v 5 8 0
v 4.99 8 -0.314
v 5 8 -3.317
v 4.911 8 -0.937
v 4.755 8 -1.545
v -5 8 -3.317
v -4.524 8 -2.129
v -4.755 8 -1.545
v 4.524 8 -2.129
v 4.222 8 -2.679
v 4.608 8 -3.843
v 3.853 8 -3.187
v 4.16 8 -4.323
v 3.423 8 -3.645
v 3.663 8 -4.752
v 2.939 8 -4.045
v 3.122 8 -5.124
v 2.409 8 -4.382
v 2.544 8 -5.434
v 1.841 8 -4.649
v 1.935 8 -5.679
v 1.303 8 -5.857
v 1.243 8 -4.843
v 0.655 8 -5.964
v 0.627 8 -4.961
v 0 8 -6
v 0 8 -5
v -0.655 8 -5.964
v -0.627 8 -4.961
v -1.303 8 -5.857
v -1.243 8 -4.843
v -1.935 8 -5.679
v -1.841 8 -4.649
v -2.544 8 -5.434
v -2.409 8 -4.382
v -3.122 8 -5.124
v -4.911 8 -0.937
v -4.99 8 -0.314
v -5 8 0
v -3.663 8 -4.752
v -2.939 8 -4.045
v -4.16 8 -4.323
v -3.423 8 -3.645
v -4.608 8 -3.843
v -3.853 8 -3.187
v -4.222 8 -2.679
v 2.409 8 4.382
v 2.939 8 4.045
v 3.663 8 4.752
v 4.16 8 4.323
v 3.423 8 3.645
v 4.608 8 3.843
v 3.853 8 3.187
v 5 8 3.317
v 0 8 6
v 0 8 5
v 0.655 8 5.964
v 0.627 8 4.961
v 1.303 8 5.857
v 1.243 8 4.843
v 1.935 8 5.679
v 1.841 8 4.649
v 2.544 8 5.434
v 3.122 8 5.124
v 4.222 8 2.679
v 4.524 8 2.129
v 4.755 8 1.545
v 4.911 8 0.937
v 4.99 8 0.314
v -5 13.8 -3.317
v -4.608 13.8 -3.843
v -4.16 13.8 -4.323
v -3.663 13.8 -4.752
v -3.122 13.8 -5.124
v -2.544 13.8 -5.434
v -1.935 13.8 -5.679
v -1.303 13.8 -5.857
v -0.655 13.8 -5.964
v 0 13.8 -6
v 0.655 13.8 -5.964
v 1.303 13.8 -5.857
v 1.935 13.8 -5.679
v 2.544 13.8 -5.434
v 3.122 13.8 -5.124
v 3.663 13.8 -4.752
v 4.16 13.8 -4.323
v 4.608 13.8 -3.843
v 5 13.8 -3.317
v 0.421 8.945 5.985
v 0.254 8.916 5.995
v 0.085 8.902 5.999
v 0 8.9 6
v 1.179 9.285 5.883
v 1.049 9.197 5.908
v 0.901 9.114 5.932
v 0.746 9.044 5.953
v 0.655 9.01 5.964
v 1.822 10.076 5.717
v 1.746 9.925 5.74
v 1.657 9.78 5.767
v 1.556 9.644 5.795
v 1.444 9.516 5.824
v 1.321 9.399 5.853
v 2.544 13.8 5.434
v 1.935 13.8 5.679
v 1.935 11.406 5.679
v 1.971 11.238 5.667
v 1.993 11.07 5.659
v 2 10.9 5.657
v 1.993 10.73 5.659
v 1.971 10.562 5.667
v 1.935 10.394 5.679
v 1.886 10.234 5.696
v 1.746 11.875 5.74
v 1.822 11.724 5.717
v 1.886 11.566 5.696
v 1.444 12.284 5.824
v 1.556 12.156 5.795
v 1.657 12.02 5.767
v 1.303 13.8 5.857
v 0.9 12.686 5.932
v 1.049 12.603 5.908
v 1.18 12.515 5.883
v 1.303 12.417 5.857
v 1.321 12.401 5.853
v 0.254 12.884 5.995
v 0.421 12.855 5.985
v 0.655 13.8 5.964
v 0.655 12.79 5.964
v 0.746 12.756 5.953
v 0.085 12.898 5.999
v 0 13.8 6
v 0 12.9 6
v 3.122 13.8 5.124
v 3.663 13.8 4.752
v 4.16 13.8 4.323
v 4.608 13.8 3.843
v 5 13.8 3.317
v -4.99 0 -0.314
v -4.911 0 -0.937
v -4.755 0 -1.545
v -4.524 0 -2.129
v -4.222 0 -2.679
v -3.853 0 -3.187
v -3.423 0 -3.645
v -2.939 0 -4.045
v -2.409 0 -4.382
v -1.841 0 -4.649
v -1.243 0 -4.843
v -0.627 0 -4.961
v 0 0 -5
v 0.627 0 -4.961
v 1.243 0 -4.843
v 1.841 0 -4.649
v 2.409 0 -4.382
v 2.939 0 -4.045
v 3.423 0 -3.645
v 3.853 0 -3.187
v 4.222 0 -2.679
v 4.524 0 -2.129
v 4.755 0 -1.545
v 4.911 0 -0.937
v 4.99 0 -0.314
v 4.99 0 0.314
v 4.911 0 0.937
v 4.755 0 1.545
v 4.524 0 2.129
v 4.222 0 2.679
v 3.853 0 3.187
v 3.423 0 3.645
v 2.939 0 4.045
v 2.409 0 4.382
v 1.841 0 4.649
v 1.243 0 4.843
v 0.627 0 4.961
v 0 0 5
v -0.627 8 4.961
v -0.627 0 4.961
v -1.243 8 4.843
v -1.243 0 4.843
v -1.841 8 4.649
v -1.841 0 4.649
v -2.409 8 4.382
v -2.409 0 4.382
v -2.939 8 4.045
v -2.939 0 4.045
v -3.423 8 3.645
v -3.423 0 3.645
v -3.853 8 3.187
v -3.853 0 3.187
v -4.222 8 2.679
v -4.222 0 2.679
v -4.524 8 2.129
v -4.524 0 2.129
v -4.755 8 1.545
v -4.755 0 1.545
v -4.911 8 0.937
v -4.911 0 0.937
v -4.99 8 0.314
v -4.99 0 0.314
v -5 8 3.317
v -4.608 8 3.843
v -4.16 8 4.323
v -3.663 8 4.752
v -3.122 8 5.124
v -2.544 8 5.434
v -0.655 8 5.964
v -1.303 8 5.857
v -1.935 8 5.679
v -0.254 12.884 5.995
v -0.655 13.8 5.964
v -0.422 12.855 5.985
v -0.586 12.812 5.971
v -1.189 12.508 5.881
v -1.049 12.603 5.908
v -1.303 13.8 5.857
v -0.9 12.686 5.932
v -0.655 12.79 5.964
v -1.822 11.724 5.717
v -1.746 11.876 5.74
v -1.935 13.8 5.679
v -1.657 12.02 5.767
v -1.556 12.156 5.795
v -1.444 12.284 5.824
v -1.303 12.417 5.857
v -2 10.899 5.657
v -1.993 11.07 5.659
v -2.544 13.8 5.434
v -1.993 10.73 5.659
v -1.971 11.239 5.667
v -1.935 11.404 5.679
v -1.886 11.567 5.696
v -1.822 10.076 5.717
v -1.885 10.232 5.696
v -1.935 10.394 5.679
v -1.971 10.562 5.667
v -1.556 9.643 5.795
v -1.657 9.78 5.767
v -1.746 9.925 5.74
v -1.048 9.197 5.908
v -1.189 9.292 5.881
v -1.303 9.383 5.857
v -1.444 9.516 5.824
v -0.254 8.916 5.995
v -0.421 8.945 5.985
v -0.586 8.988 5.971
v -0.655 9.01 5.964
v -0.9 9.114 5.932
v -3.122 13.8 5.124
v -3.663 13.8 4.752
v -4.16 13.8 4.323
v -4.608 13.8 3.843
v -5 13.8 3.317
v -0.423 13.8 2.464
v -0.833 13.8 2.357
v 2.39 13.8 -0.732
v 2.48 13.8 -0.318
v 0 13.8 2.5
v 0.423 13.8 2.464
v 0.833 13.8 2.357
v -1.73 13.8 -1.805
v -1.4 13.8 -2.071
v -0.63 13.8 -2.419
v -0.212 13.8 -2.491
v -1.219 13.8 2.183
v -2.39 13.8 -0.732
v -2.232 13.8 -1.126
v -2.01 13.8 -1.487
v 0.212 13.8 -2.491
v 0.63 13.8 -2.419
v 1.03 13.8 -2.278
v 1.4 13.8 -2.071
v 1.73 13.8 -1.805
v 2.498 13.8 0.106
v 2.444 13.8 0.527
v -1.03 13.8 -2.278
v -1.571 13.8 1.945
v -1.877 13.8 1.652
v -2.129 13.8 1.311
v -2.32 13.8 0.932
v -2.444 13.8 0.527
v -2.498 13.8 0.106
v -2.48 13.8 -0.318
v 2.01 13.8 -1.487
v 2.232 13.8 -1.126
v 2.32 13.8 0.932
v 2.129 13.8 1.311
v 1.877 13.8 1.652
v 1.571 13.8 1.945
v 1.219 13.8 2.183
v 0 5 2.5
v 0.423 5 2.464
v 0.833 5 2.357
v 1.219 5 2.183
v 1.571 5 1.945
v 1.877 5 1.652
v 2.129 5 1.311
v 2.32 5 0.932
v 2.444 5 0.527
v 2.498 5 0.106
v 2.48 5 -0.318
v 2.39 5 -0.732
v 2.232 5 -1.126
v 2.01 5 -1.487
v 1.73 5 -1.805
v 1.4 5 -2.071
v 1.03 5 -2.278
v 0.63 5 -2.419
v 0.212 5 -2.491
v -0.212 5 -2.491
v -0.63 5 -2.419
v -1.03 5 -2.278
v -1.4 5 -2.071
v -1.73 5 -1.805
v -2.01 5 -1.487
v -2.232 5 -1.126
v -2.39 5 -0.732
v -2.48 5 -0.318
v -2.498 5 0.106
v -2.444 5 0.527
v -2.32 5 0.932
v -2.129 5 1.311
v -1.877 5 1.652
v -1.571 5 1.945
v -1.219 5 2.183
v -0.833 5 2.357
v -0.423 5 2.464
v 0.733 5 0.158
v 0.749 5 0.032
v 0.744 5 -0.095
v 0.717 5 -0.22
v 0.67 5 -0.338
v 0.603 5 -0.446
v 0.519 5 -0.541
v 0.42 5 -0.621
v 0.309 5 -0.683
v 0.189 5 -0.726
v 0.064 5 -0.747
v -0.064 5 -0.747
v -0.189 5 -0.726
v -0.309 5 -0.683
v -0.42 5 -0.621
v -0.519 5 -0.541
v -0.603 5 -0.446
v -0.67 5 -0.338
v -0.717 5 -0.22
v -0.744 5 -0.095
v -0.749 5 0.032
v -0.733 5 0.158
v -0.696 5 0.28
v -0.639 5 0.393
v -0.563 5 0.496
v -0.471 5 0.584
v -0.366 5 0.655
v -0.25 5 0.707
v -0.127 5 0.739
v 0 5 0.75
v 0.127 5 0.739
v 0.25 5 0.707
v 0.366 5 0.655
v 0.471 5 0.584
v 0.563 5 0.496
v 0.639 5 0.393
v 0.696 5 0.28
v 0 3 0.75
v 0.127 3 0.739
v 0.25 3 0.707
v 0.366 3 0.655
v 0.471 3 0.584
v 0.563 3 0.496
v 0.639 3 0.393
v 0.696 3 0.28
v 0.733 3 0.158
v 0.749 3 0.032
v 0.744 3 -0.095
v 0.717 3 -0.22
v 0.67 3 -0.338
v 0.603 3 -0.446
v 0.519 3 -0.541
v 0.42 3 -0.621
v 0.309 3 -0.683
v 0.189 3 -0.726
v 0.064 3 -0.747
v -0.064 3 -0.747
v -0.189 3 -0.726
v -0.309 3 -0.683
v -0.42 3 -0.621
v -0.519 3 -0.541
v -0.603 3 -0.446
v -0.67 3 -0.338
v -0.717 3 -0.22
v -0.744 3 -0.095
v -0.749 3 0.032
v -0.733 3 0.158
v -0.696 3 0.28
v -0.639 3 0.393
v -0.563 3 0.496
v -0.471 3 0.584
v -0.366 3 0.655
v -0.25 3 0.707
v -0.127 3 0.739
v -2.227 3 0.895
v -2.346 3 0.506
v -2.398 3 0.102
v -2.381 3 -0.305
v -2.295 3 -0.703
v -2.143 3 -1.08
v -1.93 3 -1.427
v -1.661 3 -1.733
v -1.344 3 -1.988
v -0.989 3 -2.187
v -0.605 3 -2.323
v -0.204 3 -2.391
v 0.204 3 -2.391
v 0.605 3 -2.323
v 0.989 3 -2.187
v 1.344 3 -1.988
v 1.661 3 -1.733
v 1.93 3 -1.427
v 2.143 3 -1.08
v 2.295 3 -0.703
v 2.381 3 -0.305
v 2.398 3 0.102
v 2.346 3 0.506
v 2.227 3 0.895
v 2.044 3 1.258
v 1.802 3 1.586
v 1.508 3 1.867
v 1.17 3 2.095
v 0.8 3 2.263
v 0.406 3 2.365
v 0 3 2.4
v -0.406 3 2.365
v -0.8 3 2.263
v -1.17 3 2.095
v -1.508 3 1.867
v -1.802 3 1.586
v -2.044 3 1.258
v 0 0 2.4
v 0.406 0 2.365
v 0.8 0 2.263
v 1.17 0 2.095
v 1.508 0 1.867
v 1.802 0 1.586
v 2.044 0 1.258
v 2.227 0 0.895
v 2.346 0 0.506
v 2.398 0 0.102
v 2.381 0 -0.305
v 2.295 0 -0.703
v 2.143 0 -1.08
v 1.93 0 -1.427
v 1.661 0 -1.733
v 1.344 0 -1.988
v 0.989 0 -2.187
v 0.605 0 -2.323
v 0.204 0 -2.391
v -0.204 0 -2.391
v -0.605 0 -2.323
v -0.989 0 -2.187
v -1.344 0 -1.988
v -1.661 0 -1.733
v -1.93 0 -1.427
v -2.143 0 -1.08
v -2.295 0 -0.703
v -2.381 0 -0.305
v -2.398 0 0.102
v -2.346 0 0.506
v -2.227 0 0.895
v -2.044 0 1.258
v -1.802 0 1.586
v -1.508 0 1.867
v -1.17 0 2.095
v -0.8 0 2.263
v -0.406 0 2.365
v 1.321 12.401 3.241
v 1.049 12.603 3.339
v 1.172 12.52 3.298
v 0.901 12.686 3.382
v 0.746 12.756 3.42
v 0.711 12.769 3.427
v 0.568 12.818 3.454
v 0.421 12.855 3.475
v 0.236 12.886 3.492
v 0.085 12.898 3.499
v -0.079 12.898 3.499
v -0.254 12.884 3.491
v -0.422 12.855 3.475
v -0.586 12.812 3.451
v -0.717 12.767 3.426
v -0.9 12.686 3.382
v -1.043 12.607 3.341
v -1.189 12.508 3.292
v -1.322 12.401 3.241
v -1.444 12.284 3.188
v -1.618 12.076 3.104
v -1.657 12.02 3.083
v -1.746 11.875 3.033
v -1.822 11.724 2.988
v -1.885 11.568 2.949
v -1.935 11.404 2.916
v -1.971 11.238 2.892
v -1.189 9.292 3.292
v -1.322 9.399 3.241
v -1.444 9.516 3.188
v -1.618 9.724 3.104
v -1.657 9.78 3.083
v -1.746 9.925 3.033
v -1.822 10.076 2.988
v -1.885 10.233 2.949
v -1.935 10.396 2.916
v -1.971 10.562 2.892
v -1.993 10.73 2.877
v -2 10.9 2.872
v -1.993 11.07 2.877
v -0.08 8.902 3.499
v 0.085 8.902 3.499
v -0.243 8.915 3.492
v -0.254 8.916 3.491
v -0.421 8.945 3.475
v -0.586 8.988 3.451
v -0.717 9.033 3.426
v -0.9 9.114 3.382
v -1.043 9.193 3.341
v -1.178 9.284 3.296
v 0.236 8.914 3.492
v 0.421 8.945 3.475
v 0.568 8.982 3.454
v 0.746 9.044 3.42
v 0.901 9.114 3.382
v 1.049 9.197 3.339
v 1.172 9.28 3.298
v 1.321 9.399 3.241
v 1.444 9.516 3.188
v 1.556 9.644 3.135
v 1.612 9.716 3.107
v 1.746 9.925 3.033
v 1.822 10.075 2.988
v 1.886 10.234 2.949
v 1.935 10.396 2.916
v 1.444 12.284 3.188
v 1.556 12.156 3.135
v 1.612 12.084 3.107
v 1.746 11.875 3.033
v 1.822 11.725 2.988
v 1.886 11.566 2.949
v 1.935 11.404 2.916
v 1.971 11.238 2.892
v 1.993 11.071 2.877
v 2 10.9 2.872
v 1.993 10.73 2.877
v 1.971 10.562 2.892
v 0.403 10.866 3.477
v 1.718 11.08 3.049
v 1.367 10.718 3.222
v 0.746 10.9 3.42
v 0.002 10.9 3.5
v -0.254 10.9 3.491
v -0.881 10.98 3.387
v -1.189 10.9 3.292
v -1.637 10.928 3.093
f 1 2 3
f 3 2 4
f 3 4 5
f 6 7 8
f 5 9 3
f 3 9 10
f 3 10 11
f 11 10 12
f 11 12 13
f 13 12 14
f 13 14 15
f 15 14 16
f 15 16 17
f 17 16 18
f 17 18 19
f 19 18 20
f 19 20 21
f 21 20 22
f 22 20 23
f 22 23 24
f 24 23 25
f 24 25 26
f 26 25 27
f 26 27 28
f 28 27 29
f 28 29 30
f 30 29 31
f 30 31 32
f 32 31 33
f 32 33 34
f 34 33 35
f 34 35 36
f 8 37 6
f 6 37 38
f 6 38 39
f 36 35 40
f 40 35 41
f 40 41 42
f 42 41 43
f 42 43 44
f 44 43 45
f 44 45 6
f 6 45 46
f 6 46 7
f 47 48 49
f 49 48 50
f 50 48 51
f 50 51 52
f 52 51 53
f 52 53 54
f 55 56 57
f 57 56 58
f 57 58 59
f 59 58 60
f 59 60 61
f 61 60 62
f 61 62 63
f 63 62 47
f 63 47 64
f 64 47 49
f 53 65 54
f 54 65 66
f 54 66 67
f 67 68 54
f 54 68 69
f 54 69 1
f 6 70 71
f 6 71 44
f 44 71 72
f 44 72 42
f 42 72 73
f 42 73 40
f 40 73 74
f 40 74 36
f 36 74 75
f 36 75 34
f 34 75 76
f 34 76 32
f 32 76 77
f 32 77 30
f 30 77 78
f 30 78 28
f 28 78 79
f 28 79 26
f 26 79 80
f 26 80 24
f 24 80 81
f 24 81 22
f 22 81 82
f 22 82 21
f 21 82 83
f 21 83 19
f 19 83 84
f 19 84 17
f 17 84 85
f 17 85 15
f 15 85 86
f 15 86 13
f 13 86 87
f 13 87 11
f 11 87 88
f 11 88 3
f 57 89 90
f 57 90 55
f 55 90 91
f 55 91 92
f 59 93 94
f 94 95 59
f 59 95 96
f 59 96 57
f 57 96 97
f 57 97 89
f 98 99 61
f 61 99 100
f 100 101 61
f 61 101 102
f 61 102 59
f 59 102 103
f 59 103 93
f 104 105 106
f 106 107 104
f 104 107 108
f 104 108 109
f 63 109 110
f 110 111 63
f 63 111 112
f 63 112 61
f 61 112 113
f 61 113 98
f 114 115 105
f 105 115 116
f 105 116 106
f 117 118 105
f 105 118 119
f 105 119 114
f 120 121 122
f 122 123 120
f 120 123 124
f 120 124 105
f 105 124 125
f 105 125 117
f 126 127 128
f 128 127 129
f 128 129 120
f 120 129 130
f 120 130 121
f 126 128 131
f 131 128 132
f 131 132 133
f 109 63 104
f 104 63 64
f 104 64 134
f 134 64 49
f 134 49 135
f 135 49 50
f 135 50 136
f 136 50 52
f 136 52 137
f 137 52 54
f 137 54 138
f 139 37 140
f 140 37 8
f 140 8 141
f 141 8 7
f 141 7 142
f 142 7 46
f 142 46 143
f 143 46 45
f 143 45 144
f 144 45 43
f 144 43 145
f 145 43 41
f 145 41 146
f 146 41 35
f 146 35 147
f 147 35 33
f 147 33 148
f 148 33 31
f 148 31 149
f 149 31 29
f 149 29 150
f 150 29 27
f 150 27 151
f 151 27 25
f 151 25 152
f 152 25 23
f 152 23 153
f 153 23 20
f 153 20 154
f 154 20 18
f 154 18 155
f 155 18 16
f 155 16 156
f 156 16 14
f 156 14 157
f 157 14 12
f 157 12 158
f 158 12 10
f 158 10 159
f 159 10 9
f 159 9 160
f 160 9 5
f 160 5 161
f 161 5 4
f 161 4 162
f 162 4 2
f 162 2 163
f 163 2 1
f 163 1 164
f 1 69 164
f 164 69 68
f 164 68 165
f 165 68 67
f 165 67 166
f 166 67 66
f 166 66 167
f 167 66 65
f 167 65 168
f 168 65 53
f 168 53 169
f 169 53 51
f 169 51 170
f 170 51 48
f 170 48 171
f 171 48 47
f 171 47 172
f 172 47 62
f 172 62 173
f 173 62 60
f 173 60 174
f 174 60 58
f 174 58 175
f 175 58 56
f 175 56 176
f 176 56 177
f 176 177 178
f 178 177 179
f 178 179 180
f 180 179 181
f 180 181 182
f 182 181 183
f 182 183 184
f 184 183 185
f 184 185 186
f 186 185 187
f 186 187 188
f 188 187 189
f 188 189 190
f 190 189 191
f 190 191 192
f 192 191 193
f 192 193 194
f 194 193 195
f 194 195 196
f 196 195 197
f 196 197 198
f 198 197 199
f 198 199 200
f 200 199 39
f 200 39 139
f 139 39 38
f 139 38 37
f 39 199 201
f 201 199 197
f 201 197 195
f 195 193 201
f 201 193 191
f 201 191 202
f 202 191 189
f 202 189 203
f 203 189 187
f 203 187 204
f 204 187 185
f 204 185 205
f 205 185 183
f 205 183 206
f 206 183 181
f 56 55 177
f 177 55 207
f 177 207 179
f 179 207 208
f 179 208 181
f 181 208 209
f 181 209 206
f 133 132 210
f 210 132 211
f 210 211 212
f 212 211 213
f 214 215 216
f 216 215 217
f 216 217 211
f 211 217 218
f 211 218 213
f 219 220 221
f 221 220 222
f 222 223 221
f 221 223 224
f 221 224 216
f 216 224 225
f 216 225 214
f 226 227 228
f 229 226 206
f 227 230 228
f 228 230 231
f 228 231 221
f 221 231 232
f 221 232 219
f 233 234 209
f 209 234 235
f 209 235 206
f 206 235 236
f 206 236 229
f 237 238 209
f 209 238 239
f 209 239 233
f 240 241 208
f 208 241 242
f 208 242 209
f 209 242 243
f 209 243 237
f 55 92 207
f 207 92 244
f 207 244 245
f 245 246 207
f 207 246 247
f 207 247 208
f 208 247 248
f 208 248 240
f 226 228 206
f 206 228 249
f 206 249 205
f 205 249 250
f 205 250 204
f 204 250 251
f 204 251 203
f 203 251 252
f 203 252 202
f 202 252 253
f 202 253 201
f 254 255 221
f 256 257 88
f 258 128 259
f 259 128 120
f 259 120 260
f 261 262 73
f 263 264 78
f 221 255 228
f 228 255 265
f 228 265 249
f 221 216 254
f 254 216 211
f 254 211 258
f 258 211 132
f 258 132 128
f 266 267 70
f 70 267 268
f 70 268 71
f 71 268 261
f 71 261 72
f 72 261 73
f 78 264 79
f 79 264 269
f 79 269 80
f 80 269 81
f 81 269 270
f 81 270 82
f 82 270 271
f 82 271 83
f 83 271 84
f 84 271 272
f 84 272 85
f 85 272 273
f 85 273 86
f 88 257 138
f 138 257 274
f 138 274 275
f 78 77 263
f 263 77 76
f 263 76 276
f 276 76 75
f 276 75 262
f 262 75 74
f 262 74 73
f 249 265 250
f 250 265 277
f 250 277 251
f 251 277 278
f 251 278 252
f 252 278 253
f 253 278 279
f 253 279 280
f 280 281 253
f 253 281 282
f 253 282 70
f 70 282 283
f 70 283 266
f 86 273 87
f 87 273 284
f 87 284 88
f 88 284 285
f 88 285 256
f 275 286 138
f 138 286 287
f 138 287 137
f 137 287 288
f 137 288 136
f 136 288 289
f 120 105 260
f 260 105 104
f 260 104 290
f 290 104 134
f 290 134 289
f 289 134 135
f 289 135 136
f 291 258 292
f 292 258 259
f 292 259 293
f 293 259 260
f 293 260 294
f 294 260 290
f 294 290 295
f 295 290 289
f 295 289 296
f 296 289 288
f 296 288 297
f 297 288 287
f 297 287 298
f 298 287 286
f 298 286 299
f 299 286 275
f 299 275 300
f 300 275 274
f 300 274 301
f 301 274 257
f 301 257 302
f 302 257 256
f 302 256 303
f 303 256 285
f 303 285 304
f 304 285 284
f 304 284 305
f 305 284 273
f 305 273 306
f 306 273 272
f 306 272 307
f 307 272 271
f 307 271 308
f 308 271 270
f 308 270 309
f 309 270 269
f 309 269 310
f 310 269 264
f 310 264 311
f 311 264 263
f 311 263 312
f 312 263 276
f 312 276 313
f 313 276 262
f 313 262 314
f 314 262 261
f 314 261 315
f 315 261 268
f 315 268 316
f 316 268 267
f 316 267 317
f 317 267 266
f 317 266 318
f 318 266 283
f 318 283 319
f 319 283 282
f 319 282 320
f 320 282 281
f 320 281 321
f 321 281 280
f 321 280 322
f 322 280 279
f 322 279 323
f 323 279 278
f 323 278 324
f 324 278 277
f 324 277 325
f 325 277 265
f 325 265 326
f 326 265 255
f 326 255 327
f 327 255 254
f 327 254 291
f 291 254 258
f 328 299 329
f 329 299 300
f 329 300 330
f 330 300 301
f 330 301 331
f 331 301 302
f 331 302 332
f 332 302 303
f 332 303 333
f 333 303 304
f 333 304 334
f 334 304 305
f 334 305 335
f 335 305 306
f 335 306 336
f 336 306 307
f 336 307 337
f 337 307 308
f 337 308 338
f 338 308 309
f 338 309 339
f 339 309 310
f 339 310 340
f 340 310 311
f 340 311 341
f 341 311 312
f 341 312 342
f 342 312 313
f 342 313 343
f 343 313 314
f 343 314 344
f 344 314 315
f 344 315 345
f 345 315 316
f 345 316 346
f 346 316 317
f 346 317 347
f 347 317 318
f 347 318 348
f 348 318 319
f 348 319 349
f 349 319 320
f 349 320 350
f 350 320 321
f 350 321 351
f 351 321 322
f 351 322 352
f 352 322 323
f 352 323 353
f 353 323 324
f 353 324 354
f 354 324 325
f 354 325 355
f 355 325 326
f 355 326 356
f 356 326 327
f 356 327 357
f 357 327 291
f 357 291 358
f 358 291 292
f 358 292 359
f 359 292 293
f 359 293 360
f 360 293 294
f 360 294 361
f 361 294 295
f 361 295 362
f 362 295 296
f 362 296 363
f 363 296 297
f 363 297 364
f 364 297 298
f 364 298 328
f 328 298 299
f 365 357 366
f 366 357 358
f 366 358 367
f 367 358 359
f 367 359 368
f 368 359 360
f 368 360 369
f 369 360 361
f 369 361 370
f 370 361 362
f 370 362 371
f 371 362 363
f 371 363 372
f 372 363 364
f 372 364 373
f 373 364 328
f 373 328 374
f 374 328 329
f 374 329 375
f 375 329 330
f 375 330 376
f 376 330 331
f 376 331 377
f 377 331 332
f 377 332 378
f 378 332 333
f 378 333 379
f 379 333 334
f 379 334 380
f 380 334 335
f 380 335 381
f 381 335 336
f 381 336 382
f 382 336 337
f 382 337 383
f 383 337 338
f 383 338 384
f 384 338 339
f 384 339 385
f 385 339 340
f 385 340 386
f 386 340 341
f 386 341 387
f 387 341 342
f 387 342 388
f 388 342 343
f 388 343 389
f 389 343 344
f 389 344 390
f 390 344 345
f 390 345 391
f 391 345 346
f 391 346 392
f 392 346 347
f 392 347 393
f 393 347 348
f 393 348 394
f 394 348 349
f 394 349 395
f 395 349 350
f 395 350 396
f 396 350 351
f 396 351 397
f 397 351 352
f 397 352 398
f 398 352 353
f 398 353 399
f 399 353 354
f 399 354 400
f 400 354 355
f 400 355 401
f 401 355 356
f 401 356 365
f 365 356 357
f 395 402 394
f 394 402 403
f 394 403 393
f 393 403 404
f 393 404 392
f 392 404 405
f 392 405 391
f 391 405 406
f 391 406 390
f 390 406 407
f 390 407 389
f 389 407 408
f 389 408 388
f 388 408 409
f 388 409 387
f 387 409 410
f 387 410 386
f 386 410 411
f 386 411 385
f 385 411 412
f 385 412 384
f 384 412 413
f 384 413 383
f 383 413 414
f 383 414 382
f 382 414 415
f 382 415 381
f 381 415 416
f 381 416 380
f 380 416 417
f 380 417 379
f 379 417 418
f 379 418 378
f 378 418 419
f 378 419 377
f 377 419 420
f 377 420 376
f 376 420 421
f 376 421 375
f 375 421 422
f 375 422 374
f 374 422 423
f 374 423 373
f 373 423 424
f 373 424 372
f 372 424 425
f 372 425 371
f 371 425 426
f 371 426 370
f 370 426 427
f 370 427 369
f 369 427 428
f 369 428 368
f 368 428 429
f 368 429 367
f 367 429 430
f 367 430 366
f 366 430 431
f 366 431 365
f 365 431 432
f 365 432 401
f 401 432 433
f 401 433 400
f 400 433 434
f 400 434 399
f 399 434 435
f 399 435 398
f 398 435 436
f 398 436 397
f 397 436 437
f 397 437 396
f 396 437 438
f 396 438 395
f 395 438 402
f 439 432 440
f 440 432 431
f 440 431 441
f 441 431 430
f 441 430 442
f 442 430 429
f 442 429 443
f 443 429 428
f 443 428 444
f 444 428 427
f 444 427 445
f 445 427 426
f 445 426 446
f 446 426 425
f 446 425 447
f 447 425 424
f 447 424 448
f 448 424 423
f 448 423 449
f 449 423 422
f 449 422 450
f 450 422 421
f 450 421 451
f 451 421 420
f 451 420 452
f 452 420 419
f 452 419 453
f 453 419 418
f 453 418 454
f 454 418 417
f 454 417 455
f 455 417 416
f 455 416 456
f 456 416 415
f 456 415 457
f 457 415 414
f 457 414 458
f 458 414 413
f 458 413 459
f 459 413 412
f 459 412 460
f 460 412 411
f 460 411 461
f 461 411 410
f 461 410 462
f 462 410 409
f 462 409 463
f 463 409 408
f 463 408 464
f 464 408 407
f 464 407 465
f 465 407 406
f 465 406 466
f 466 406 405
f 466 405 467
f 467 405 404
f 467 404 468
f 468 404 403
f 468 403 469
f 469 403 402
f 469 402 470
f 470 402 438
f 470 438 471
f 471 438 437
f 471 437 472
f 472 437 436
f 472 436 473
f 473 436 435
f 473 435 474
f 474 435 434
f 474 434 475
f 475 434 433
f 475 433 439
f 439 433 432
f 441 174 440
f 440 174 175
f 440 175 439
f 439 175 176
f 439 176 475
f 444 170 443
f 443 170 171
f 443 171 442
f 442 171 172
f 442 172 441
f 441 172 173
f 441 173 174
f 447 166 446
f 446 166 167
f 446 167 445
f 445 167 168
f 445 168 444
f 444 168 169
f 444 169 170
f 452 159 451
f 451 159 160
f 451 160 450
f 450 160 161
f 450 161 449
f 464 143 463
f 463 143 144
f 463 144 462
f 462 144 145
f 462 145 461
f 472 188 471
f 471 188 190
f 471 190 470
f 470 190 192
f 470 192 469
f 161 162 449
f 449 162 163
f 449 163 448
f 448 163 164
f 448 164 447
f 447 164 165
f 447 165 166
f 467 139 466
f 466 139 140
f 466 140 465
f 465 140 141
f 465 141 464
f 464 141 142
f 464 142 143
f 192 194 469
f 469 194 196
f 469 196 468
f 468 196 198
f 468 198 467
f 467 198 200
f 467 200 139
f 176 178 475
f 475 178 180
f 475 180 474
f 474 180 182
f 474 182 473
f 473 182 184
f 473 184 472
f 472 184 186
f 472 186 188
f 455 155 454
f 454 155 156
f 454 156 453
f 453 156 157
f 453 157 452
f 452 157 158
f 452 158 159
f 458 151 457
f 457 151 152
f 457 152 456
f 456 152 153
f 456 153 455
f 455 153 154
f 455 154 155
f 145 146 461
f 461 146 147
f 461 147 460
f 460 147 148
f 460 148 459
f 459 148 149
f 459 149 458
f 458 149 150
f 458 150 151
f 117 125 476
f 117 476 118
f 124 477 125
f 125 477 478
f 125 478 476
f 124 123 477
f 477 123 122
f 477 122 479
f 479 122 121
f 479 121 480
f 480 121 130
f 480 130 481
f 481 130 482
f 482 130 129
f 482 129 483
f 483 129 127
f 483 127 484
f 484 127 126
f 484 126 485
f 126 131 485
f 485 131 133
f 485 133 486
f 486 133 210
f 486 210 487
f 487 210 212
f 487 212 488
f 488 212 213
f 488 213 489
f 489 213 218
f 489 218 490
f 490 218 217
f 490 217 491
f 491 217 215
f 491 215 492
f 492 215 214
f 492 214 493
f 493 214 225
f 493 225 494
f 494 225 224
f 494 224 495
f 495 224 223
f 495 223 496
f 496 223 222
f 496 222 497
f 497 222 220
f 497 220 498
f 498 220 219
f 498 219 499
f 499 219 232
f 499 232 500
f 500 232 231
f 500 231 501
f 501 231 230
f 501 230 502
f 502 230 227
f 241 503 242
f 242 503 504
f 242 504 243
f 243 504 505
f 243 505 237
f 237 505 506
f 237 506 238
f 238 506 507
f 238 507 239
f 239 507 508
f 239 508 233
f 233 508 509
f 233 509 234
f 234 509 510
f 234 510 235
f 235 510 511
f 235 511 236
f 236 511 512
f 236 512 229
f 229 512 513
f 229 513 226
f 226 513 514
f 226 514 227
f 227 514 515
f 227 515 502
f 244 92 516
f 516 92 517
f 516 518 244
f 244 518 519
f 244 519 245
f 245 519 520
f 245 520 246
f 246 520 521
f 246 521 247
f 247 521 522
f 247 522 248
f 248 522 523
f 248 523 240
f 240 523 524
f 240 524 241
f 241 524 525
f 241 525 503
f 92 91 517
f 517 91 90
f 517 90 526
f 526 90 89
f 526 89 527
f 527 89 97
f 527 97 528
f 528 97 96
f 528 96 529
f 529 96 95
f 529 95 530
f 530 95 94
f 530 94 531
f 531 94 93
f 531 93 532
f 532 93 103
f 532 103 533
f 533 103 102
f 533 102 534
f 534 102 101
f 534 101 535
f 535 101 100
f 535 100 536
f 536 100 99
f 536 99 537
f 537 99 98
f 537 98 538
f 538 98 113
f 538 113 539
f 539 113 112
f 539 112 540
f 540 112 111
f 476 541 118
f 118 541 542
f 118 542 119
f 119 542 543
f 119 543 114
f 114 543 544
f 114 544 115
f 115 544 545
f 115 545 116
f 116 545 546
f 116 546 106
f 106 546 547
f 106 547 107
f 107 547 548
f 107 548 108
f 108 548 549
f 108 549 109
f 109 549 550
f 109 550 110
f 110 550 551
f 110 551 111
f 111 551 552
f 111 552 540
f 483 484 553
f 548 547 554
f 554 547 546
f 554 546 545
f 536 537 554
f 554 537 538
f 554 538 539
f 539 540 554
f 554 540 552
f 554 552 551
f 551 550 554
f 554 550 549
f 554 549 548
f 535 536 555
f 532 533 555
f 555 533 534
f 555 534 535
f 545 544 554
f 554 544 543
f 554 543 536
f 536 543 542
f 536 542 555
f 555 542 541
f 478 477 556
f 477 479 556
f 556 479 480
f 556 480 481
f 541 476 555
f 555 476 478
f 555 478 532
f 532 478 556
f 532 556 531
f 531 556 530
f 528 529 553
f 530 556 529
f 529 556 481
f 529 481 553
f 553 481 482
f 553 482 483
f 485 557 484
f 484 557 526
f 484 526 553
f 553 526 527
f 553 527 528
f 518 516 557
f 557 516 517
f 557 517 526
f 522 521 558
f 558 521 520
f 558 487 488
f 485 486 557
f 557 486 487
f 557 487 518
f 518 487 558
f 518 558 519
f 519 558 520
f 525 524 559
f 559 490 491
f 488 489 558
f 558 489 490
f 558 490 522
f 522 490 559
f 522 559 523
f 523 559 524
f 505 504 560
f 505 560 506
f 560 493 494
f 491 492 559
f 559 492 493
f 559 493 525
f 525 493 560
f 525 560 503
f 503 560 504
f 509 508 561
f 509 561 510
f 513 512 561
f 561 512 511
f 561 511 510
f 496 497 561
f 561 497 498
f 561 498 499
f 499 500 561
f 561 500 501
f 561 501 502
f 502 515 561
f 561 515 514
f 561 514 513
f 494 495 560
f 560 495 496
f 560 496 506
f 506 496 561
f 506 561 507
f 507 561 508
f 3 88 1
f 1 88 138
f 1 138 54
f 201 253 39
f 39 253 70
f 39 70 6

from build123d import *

# Parameters (mm, degrees)
CUT_EXTRUDE1_REACH      = 21.247
CUT_EXTRUDE1_END_RADIUS = 3.5
SKETCH5_R               = 2
SKETCH7_W               = 1
SKETCH7_H               = 12
CUT_EXTRUDE2_DEPTH      = 5.8


with BuildPart() as part:
    # Sweep1: sweep along a path in Sketch2
    with BuildLine(Plane(origin=(0, 0, 0), x_dir=(1, 0, 0), z_dir=(0, 1, 0))) as sweep1_path:
        CenterArc((0, 0), 5, 0, 360)
    # Sketch4 → Sweep1 (sweep)
    with BuildSketch(Plane(origin=(0, 0, 0), x_dir=(0, 0, -1), z_dir=(1, 0, 0))):
        Polygon((-2.4, 0), (-2.4, 3), (-0.75, 3), (-0.75, 5), (-2.5, 5), (-2.5, 13.8), (-6, 13.8), (-6, 8), (-5, 8), (-5, 0), align=None)
    sweep(path=sweep1_path.line)

    # Cut-Extrude1: up to this cylinder (the profile starts outside it)
    cut_extrude1_end = Plane(origin=(0, 10.9, 0), z_dir=(0, 1, 0)) * Cylinder(CUT_EXTRUDE1_END_RADIUS, 50.494, mode=Mode.PRIVATE)
    # Sketch5 → Cut-Extrude1 (cut, up to the surface)
    with BuildSketch(Plane(origin=(0, 13.8, 6), x_dir=(1, 0, 0), z_dir=(0, 0, 1)), mode=Mode.PRIVATE) as cut_extrude1_sk1:
        with Locations((0, -2.9)):
            Circle(SKETCH5_R)
    cut_extrude1_tool1 = extrude(cut_extrude1_sk1.sketch, amount=-CUT_EXTRUDE1_REACH, mode=Mode.PRIVATE) - cut_extrude1_end
    add(cut_extrude1_tool1.solids().sort_by_distance((0, 10.9, 6))[0], mode=Mode.SUBTRACT)

    # Sketch7 → Cut-Extrude2 (cut)
    with BuildSketch(Plane(origin=(0, 13.8, 0), x_dir=(1, 0, 0), z_dir=(0, 1, 0))):
        with Locations((-5.5, 0)):
            Rectangle(SKETCH7_W, SKETCH7_H)
        with Locations((5.5, 0)):
            Rectangle(SKETCH7_W, SKETCH7_H)
    extrude(amount=-CUT_EXTRUDE2_DEPTH, mode=Mode.SUBTRACT)


solid = part.part
